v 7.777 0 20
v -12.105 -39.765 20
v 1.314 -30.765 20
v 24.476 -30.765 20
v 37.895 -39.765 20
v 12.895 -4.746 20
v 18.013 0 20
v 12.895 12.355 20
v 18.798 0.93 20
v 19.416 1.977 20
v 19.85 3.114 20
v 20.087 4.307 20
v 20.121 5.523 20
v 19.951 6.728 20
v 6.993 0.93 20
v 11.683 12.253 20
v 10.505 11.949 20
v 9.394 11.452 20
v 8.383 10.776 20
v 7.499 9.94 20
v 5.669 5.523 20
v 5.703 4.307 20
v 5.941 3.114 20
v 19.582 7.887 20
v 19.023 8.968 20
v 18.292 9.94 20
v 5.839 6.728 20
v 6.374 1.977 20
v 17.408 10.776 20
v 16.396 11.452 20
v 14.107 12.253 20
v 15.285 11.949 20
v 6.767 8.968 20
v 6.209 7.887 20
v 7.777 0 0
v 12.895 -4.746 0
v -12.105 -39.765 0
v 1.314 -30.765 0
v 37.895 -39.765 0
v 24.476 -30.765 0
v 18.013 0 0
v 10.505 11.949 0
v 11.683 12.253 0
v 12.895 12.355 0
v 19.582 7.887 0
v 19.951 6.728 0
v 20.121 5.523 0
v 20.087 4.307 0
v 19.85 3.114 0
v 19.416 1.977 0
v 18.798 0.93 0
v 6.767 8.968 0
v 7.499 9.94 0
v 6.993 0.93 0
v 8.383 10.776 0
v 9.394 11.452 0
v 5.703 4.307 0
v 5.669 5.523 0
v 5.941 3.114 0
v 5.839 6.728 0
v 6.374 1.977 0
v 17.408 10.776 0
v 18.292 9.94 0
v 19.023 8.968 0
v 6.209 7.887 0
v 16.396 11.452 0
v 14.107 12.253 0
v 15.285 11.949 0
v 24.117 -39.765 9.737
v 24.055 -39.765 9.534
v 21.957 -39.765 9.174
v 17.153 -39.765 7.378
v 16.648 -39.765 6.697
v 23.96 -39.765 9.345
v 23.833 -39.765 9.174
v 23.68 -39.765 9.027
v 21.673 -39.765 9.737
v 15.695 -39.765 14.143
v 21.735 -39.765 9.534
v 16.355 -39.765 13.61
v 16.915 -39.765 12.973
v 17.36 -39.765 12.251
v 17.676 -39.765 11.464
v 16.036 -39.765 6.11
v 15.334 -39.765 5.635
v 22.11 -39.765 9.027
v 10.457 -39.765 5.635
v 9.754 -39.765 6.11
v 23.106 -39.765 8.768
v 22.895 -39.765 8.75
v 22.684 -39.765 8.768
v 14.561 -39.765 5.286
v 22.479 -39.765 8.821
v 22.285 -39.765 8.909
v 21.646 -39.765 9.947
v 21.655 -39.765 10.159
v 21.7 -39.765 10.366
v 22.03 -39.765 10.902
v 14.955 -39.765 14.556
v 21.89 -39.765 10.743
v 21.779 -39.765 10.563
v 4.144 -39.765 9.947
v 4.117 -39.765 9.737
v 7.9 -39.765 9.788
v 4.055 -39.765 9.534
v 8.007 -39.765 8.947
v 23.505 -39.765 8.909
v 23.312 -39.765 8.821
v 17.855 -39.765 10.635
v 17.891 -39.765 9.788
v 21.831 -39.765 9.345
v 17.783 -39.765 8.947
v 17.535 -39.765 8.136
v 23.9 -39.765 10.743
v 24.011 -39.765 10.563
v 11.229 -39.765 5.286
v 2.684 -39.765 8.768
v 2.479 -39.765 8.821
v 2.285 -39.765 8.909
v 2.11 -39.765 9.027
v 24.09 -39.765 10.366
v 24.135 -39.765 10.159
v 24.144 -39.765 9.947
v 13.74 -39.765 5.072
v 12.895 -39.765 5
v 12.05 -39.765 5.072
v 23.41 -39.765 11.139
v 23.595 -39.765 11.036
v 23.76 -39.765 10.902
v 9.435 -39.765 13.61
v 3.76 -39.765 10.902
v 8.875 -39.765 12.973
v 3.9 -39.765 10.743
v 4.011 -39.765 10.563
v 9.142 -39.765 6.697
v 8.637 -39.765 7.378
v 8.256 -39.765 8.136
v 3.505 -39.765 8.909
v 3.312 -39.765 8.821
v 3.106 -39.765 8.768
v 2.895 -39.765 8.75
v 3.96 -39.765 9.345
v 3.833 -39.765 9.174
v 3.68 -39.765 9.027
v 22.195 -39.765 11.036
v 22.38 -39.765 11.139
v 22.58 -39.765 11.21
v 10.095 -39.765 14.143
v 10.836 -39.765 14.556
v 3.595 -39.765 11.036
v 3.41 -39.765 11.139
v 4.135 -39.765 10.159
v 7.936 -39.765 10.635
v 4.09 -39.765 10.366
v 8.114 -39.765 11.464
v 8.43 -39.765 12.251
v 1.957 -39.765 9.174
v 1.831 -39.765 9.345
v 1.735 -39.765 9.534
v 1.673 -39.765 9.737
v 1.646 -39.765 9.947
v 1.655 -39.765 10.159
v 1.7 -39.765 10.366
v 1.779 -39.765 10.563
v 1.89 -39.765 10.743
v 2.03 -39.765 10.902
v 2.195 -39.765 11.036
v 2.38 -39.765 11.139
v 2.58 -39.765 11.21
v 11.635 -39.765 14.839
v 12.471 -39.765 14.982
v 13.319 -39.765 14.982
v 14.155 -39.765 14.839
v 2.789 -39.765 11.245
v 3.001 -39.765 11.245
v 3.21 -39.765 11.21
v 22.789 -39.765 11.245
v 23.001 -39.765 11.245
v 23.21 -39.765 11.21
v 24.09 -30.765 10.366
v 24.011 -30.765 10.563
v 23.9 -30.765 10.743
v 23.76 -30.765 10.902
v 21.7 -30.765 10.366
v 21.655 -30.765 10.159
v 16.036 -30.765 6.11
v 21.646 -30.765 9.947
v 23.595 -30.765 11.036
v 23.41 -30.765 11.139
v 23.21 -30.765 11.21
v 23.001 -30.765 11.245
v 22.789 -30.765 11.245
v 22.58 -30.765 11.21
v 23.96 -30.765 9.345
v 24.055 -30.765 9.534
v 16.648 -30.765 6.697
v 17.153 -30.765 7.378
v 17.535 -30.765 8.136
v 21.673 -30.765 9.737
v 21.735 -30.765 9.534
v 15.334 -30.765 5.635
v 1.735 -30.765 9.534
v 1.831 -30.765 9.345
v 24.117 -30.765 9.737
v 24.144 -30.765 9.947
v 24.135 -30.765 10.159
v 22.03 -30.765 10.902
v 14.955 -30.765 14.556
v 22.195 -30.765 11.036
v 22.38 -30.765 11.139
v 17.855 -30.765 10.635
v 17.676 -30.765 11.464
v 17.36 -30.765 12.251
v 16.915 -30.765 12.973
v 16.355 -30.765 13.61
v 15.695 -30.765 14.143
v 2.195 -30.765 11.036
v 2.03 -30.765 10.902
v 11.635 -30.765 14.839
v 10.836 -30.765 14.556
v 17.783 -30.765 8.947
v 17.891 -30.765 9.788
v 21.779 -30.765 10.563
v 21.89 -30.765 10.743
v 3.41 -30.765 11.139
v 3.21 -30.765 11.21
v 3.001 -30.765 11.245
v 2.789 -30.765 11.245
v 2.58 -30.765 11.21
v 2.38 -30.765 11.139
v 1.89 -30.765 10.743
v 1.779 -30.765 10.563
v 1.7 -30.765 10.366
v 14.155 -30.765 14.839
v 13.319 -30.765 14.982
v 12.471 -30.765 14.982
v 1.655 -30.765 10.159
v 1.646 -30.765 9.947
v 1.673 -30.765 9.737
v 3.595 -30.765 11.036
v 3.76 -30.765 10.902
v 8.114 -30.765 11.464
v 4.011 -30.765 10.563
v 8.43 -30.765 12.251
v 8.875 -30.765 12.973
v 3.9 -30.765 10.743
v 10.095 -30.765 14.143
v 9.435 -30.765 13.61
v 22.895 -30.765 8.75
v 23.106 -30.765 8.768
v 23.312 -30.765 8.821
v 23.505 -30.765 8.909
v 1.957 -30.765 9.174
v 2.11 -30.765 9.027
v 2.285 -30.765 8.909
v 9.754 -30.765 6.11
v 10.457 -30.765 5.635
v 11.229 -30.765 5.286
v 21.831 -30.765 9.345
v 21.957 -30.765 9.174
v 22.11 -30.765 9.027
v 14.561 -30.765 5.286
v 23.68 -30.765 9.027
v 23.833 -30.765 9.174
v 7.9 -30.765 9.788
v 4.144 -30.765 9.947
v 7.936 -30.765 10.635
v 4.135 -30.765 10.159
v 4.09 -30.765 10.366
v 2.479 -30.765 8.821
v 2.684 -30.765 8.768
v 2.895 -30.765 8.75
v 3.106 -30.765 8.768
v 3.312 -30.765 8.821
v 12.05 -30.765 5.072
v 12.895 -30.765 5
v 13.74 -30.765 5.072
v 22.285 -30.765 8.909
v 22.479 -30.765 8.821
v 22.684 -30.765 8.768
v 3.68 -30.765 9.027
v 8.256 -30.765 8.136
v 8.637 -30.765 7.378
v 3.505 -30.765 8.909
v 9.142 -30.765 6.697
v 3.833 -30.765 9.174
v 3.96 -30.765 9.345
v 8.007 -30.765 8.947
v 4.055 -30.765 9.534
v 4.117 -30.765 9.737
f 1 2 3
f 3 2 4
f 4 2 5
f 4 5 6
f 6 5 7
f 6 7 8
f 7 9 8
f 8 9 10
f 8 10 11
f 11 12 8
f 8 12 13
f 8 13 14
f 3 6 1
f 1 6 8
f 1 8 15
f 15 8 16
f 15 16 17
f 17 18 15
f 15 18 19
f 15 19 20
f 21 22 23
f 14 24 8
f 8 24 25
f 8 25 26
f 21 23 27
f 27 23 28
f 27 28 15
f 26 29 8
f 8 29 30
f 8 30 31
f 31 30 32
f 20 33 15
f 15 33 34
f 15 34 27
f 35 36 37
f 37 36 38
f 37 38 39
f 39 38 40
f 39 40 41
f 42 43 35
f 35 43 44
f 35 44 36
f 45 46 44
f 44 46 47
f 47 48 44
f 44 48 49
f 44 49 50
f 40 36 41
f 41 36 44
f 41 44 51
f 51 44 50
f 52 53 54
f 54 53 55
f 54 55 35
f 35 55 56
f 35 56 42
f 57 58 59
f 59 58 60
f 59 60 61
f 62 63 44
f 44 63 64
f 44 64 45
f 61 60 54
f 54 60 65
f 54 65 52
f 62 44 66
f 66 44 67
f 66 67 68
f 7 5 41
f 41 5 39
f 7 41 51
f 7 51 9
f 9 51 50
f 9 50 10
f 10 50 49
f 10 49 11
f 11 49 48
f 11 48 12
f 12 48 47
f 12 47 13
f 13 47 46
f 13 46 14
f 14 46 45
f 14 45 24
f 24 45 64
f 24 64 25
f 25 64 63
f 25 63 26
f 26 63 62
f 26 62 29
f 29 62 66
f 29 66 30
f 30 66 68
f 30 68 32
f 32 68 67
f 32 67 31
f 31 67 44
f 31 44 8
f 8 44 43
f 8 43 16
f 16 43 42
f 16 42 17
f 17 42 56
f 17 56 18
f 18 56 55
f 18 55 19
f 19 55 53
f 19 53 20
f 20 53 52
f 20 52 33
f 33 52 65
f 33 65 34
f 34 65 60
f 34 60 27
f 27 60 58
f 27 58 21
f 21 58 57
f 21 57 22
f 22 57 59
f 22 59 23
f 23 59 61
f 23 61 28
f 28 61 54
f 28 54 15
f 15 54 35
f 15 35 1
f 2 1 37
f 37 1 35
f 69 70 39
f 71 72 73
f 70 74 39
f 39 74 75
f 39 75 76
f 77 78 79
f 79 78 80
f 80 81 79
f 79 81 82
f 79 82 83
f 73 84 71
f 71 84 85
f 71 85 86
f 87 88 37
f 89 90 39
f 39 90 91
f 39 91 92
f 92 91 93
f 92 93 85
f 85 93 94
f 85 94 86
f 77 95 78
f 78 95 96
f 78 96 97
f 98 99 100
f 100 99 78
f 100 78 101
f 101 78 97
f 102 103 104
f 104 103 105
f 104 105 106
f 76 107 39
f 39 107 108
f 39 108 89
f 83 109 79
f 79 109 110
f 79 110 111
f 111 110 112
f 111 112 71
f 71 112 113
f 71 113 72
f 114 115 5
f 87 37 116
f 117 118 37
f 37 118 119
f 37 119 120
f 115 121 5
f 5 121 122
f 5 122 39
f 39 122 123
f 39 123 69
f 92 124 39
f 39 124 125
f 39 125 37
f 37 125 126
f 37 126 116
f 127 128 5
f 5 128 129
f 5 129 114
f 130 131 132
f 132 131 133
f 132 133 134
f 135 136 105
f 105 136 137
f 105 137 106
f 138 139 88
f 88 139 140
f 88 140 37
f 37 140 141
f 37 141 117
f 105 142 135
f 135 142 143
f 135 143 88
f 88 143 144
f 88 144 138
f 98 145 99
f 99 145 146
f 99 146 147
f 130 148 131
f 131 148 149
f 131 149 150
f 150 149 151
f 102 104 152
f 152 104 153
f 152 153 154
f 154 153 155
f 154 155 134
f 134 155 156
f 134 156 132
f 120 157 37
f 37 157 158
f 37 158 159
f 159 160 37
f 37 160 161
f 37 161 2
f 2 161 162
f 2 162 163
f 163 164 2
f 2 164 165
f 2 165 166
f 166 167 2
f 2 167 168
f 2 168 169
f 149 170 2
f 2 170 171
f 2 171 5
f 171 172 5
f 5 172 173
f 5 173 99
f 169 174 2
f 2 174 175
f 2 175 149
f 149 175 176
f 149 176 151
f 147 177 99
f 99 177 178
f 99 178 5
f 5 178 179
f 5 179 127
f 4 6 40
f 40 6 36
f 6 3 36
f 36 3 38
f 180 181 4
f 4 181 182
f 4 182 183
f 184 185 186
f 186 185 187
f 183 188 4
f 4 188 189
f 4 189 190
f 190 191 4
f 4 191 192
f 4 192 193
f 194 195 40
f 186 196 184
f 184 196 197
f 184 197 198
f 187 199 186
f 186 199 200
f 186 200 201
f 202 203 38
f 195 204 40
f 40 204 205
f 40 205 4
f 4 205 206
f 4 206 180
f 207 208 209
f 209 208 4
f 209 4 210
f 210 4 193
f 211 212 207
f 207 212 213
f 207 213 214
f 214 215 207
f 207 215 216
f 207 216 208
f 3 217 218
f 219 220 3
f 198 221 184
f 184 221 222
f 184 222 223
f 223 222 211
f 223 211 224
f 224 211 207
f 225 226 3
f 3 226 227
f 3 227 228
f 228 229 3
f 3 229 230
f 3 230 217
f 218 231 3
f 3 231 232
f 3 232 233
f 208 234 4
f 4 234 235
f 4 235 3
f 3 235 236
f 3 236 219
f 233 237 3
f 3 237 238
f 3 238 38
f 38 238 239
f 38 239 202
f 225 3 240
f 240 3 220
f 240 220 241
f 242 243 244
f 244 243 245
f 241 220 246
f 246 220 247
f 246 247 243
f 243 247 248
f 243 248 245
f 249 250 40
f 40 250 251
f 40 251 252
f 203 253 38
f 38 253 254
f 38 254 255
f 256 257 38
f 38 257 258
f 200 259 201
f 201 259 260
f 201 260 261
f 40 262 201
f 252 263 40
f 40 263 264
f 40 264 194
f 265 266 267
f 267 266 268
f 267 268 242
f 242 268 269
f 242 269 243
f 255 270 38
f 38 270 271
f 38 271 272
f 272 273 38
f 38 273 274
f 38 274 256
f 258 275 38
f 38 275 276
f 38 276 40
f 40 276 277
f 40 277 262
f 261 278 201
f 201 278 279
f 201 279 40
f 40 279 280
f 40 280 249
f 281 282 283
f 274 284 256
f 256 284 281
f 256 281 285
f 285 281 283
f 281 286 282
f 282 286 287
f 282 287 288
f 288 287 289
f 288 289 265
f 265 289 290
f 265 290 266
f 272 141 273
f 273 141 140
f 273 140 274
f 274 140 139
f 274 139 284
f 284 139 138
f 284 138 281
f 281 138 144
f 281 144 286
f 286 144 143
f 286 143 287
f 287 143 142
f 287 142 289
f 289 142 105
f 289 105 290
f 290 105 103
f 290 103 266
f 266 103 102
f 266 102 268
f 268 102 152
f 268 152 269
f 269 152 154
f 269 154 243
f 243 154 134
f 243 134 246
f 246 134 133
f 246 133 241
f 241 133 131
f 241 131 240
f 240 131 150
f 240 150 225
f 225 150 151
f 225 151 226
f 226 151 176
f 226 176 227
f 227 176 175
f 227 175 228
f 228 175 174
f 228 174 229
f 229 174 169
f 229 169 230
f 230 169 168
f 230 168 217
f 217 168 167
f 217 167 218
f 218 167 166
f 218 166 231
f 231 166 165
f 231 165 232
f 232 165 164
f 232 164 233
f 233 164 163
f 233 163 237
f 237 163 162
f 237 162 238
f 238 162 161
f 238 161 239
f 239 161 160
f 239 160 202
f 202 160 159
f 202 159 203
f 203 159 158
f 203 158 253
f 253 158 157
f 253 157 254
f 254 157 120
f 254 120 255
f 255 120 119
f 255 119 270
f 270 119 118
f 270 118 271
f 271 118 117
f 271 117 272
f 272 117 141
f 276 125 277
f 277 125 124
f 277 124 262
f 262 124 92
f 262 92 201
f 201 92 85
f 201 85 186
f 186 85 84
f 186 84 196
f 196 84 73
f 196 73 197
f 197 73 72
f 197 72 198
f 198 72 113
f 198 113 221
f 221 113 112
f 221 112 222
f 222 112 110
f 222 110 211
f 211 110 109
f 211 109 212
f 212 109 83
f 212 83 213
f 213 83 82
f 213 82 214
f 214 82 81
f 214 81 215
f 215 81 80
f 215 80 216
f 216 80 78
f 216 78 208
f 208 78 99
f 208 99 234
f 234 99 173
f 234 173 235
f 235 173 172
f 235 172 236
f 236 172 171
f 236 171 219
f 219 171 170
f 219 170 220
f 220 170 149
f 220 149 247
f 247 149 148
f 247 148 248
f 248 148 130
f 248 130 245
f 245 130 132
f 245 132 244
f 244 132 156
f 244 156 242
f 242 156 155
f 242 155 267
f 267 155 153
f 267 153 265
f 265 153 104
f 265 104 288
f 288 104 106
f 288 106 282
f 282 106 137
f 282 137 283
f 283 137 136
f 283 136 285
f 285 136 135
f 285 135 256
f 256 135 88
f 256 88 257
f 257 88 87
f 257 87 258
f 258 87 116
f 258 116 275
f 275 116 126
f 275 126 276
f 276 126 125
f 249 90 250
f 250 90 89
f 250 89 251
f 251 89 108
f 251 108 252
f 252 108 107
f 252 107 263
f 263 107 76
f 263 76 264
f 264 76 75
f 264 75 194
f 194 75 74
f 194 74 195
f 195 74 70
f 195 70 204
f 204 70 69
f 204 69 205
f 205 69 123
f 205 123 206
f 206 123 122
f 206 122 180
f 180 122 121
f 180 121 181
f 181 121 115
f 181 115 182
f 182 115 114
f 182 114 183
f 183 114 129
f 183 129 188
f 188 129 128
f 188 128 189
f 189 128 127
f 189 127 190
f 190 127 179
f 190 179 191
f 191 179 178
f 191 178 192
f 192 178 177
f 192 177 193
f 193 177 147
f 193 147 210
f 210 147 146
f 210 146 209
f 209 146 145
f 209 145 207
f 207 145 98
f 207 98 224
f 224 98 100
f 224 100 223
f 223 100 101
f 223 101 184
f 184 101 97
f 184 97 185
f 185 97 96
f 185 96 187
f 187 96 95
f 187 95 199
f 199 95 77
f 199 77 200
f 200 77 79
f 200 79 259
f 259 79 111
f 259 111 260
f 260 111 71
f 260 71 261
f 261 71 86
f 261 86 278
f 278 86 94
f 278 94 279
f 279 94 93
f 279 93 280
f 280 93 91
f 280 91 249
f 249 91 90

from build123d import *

# Parameters (mm, degrees)
SALIENTE_EXTRUIR1_DEPTH = 20
CROQUIS4_R              = 5
CROQUIS4_R_2            = 1.25
CORTAR_EXTRUIR3_DEPTH   = 9


with BuildPart() as part:
    # Croquis1 → Saliente-Extruir1 (new body)
    with BuildSketch(Plane.XY):
        with BuildLine():
            Line((-12.104887717, -39.764697086), (7.777460826, 0))
            ThreePointArc((7.777460826, 0), (12.895112283, 12.355103555), (18.01276374, 0))
            Line((18.01276374, 0), (37.895112283, -39.764697086))
            Line((37.895112283, -39.764697086), (-12.104887717, -39.764697086))
        make_face()
        Polygon((1.314448857, -30.764697086), (12.895112283, -4.746347114), (24.475775709, -30.764697086), (14.62955151, -30.764697086), align=None, mode=Mode.SUBTRACT)
    extrude(amount=SALIENTE_EXTRUIR1_DEPTH)

    # Croquis4 → Cortar-Extruir3 (cut)
    with BuildSketch(Plane.XZ.offset(39.764697086)):
        with Locations(Location((12.895112283, 10, 0), (0, 0, 270))):
            Circle(CROQUIS4_R)
        with Locations(Location((22.895112283, 10, 0), (0, 0, 270))):
            Circle(CROQUIS4_R_2)
        with Locations(Location((2.895112283, 10, 0), (0, 0, 270))):
            Circle(CROQUIS4_R_2)
    extrude(amount=-CORTAR_EXTRUIR3_DEPTH, mode=Mode.SUBTRACT)


solid = part.part
